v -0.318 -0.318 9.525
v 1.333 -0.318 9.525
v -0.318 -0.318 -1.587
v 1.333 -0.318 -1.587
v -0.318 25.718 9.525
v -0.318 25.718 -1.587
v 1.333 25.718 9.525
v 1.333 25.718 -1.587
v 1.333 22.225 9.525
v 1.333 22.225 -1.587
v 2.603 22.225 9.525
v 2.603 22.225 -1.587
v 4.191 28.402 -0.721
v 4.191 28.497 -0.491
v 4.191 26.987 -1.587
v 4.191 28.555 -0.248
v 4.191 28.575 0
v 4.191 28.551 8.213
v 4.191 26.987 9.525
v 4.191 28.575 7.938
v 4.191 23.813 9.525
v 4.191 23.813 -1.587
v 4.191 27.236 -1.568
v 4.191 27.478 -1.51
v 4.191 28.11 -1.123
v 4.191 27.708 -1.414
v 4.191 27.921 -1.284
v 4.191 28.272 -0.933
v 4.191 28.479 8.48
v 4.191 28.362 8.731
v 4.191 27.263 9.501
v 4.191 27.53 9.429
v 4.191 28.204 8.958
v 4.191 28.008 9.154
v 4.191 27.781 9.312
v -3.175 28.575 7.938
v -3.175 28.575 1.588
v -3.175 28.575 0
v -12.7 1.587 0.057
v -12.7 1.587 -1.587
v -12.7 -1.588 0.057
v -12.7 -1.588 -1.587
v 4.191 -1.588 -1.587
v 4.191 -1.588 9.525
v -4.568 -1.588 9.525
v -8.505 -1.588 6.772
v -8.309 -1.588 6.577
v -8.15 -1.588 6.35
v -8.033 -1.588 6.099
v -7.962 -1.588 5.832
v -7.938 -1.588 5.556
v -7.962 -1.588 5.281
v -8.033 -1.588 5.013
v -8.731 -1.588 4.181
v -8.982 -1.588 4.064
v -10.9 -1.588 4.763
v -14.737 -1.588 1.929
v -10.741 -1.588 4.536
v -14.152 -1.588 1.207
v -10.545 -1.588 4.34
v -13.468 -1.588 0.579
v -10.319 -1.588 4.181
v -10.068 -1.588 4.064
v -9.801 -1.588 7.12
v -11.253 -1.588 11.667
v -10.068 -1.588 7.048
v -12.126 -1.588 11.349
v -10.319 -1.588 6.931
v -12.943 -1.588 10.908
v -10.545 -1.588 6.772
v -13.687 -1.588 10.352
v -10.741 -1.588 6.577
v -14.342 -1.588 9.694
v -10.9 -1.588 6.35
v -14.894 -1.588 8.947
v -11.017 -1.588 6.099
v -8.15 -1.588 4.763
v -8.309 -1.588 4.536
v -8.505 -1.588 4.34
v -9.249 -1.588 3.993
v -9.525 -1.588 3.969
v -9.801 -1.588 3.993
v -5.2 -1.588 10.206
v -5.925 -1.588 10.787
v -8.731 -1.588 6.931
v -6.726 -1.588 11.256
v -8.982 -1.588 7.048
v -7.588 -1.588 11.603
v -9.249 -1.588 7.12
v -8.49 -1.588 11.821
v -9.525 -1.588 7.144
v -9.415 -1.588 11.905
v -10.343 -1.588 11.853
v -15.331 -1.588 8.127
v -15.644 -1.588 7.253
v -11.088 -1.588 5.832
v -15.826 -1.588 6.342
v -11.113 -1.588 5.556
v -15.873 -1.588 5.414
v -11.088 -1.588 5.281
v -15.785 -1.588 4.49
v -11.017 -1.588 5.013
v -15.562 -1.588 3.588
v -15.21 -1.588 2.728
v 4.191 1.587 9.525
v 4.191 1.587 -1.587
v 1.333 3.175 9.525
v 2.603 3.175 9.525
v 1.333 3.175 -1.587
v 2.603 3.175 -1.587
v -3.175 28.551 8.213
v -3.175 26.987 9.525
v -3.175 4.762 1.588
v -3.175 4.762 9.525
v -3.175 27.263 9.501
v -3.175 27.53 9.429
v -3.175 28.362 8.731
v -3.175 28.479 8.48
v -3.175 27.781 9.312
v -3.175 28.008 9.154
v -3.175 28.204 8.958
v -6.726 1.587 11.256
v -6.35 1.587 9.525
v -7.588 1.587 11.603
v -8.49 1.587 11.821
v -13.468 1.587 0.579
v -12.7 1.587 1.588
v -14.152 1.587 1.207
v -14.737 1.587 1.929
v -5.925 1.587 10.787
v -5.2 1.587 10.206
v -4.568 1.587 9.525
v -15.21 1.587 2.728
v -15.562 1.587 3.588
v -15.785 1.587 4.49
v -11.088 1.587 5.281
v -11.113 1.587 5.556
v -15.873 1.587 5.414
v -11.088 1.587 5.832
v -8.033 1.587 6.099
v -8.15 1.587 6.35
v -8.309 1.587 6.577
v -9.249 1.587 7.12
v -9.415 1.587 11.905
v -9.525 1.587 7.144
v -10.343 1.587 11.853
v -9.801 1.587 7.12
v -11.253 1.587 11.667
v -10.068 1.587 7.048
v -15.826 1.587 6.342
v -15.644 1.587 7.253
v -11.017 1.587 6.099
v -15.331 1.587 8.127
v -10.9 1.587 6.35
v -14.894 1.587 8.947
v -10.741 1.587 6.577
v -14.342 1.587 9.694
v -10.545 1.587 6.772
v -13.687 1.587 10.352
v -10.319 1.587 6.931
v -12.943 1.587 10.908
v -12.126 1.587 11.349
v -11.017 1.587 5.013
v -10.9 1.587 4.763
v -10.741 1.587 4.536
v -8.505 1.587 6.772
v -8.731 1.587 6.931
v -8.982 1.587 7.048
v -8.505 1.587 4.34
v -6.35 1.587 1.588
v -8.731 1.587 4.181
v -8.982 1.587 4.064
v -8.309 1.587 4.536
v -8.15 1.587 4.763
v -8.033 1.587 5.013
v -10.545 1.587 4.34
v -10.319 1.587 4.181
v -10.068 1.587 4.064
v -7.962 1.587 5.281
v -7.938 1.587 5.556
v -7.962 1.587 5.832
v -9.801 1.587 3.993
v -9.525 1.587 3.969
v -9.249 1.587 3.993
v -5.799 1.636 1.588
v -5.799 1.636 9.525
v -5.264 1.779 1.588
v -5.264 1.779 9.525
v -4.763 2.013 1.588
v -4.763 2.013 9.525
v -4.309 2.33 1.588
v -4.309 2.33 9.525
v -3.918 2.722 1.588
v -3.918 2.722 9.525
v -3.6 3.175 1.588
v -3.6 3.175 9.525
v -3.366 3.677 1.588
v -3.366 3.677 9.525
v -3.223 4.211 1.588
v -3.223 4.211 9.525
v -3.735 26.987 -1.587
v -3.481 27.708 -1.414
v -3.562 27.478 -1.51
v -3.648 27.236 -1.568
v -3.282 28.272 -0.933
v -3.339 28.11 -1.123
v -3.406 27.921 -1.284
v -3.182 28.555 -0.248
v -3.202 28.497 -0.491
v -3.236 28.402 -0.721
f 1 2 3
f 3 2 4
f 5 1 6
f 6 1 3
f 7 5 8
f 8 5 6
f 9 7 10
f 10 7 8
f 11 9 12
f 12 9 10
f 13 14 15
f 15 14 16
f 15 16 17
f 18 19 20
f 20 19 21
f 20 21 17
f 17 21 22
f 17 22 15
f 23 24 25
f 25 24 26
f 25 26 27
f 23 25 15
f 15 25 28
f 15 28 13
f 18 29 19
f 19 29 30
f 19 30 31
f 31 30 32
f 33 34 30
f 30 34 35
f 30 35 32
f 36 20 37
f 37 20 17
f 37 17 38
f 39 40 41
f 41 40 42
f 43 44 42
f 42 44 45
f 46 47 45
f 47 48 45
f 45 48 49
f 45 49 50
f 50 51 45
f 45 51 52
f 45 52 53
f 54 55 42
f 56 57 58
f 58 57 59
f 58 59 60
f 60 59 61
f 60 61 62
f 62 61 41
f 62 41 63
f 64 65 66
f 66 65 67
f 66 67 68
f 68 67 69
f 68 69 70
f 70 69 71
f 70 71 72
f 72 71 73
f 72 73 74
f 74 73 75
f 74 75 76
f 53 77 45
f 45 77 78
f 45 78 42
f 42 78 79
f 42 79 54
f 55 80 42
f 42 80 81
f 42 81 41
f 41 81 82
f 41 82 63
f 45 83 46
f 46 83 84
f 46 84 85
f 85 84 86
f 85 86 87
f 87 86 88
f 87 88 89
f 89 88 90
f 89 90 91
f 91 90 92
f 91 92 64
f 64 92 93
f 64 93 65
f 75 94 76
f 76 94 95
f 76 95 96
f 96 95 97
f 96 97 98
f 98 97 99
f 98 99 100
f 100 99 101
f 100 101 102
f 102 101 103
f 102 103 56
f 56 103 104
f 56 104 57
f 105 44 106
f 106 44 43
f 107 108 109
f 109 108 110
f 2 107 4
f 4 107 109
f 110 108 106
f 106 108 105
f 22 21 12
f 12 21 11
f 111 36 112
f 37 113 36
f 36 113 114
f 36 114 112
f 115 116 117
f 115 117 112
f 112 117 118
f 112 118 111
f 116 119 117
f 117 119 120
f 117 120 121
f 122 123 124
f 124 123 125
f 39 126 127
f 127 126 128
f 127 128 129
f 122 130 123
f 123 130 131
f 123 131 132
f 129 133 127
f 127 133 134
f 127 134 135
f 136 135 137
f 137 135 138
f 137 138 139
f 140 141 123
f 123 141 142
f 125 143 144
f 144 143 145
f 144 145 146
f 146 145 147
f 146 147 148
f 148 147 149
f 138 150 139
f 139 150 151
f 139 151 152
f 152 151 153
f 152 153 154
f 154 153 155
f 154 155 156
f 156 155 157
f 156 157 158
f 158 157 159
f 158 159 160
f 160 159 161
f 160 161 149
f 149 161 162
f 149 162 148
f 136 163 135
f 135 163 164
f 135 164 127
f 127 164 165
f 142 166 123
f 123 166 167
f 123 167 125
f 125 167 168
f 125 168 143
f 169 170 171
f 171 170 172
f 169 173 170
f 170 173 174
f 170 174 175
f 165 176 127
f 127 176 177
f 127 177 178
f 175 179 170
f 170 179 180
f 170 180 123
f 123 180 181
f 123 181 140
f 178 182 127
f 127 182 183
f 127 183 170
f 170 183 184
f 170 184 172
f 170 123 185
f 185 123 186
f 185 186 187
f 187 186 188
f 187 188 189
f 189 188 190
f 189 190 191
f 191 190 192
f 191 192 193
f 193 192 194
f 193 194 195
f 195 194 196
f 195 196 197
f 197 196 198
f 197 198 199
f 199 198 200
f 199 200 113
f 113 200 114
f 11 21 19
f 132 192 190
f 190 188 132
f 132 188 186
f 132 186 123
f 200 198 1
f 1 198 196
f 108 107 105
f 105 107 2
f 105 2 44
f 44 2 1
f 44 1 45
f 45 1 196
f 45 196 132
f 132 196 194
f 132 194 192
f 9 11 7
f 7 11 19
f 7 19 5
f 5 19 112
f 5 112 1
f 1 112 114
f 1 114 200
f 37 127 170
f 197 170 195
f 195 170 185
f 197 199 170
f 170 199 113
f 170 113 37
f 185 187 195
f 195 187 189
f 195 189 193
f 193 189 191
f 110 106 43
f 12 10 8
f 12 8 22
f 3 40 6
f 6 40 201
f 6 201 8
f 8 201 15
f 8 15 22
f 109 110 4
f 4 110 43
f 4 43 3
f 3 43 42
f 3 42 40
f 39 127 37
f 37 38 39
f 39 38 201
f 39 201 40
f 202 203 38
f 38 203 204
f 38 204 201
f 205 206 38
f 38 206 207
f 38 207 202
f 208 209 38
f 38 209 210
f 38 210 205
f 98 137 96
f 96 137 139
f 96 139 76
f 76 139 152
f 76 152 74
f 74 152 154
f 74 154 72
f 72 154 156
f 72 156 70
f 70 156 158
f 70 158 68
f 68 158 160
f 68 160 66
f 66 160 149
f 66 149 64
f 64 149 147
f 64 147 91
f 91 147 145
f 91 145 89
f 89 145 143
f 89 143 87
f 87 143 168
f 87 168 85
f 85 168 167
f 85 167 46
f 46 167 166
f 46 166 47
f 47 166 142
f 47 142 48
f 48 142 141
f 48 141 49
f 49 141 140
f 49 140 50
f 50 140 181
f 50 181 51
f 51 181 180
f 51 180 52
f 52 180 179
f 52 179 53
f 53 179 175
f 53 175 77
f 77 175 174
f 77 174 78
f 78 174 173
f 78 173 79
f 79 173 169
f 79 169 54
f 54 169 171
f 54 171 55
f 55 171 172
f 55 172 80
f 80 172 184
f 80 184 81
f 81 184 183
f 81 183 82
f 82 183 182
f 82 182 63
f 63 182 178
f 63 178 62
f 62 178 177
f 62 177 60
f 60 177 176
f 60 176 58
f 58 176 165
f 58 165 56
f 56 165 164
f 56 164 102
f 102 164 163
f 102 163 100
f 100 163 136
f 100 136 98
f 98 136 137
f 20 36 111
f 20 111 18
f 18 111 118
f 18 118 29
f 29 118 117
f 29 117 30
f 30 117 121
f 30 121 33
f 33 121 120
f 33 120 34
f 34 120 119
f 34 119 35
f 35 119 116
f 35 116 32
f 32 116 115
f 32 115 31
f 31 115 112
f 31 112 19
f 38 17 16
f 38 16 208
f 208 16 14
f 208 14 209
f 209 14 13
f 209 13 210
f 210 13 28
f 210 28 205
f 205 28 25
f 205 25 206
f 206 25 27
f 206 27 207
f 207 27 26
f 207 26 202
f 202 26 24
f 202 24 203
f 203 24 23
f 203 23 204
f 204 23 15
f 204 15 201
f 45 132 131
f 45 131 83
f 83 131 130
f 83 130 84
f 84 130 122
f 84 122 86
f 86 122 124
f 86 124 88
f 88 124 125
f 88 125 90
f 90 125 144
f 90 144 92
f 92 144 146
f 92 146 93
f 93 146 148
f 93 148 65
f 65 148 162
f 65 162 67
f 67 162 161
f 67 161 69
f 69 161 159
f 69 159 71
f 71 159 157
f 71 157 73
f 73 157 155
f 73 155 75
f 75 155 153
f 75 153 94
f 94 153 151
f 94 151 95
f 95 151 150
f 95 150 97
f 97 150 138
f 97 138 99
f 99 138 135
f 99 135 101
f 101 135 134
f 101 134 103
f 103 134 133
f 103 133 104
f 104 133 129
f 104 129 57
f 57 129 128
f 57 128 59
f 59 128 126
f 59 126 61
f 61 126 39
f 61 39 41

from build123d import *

# Parameters (mm, degrees)
BOSS_EXTRUDE1_DEPTH = 9.525
FILLET1_R           = 3.175
BOSS_EXTRUDE2_DEPTH = 1.5875
SKETCH3_R           = 1.5875
CUT_EXTRUDE1_DEPTH  = 3.175
CHAMFER1_SIZE       = 1.5875
FILLET2_R           = 1.5875
CUT_EXTRUDE2_DEPTH  = 12.7
FILLET3_R           = 1.5875
SKETCH5_R           = 6.35
SKETCH5_R_2         = 1.5875
BOSS_EXTRUDE3_DEPTH = 3.175


with BuildPart() as part:
    # Sketch1 → Boss-Extrude1 (new body, symmetric)
    with BuildSketch(Plane.XY):
        Polygon((-0.3175, -0.3175), (-0.3175, 25.7175), (1.3335, 25.7175), (1.3335, 22.225), (4.191, 22.225), (4.191, 28.575), (1.016, 28.575), (-3.175, 28.575), (-3.175, 1.5875), (-12.7, 1.5875), (-12.7, -1.5875), (-3.175, -1.5875), (4.191, -1.5875), (4.191, 0), (4.191, 3.175), (1.3335, 3.175), (1.3335, -0.3175), align=None)
    extrude(amount=BOSS_EXTRUDE1_DEPTH, both=True)

    # Fillet1
    fillet1_edges = [part.edges().sort_by_distance(p)[0] for p in [
        (-3.175, 1.5875, 0),
    ]]
    fillet(fillet1_edges, radius=FILLET1_R)

    # Sketch2 → Boss-Extrude2 (add, symmetric)
    with BuildSketch(Plane.XY):
        Polygon((-3.175, 28.575), (-12.7, 1.5875), (-3.175, 1.5875), align=None)
    extrude(amount=BOSS_EXTRUDE2_DEPTH, both=True)

    # Sketch3 → Cut-Extrude1 (cut)
    with BuildSketch(Plane(origin=(0, 1.5875, 0), x_dir=(1, 0, 0), z_dir=(0, 1, 0))):
        with Locations((-9.525, -5.55625)):
            Circle(SKETCH3_R)
        with Locations((-9.525, 5.55625)):
            Circle(SKETCH3_R)
    extrude(amount=-CUT_EXTRUDE1_DEPTH, mode=Mode.SUBTRACT)

    # Chamfer1
    chamfer1_edges = [part.edges().sort_by_distance(p)[0] for p in [
        (4.191, 3.175, 0),
        (4.191, 22.225, 0),
    ]]
    chamfer(chamfer1_edges, length=CHAMFER1_SIZE)

    # Fillet2
    fillet2_edges = [part.edges().sort_by_distance(p)[0] for p in [
        (0.508, 28.575, -9.525),
        (0.508, 28.575, 9.525),
    ]]
    fillet(fillet2_edges, radius=FILLET2_R)

    # Sketch4 → Cut-Extrude2 (cut)
    with BuildSketch(Plane(origin=(0, 0, -1.5875), x_dir=(-1, 0, 0), z_dir=(0, 0, -1))):
        Polygon((12.7, 1.5875), (3.175, 28.575), (-4.191, 28.575), (-4.191, -1.5875), (12.7, -1.5875), align=None)
    extrude(amount=CUT_EXTRUDE2_DEPTH, mode=Mode.SUBTRACT)

    # Fillet3
    fillet3_edges = [part.edges().sort_by_distance(p)[0] for p in [
        (0.508, 28.575, -1.5875),
    ]]
    fillet(fillet3_edges, radius=FILLET3_R)

    # Sketch5 → Boss-Extrude3 (add)
    with BuildSketch(Plane(origin=(0, 1.5875, 0), x_dir=(1, 0, 0), z_dir=(0, 1, 0))):
        with Locations((-9.525, -5.55625)):
            Circle(SKETCH5_R)
        with Locations((-9.525, -5.55625)):
            Circle(SKETCH5_R_2, mode=Mode.SUBTRACT)
    extrude(amount=-BOSS_EXTRUDE3_DEPTH)


solid = part.part
